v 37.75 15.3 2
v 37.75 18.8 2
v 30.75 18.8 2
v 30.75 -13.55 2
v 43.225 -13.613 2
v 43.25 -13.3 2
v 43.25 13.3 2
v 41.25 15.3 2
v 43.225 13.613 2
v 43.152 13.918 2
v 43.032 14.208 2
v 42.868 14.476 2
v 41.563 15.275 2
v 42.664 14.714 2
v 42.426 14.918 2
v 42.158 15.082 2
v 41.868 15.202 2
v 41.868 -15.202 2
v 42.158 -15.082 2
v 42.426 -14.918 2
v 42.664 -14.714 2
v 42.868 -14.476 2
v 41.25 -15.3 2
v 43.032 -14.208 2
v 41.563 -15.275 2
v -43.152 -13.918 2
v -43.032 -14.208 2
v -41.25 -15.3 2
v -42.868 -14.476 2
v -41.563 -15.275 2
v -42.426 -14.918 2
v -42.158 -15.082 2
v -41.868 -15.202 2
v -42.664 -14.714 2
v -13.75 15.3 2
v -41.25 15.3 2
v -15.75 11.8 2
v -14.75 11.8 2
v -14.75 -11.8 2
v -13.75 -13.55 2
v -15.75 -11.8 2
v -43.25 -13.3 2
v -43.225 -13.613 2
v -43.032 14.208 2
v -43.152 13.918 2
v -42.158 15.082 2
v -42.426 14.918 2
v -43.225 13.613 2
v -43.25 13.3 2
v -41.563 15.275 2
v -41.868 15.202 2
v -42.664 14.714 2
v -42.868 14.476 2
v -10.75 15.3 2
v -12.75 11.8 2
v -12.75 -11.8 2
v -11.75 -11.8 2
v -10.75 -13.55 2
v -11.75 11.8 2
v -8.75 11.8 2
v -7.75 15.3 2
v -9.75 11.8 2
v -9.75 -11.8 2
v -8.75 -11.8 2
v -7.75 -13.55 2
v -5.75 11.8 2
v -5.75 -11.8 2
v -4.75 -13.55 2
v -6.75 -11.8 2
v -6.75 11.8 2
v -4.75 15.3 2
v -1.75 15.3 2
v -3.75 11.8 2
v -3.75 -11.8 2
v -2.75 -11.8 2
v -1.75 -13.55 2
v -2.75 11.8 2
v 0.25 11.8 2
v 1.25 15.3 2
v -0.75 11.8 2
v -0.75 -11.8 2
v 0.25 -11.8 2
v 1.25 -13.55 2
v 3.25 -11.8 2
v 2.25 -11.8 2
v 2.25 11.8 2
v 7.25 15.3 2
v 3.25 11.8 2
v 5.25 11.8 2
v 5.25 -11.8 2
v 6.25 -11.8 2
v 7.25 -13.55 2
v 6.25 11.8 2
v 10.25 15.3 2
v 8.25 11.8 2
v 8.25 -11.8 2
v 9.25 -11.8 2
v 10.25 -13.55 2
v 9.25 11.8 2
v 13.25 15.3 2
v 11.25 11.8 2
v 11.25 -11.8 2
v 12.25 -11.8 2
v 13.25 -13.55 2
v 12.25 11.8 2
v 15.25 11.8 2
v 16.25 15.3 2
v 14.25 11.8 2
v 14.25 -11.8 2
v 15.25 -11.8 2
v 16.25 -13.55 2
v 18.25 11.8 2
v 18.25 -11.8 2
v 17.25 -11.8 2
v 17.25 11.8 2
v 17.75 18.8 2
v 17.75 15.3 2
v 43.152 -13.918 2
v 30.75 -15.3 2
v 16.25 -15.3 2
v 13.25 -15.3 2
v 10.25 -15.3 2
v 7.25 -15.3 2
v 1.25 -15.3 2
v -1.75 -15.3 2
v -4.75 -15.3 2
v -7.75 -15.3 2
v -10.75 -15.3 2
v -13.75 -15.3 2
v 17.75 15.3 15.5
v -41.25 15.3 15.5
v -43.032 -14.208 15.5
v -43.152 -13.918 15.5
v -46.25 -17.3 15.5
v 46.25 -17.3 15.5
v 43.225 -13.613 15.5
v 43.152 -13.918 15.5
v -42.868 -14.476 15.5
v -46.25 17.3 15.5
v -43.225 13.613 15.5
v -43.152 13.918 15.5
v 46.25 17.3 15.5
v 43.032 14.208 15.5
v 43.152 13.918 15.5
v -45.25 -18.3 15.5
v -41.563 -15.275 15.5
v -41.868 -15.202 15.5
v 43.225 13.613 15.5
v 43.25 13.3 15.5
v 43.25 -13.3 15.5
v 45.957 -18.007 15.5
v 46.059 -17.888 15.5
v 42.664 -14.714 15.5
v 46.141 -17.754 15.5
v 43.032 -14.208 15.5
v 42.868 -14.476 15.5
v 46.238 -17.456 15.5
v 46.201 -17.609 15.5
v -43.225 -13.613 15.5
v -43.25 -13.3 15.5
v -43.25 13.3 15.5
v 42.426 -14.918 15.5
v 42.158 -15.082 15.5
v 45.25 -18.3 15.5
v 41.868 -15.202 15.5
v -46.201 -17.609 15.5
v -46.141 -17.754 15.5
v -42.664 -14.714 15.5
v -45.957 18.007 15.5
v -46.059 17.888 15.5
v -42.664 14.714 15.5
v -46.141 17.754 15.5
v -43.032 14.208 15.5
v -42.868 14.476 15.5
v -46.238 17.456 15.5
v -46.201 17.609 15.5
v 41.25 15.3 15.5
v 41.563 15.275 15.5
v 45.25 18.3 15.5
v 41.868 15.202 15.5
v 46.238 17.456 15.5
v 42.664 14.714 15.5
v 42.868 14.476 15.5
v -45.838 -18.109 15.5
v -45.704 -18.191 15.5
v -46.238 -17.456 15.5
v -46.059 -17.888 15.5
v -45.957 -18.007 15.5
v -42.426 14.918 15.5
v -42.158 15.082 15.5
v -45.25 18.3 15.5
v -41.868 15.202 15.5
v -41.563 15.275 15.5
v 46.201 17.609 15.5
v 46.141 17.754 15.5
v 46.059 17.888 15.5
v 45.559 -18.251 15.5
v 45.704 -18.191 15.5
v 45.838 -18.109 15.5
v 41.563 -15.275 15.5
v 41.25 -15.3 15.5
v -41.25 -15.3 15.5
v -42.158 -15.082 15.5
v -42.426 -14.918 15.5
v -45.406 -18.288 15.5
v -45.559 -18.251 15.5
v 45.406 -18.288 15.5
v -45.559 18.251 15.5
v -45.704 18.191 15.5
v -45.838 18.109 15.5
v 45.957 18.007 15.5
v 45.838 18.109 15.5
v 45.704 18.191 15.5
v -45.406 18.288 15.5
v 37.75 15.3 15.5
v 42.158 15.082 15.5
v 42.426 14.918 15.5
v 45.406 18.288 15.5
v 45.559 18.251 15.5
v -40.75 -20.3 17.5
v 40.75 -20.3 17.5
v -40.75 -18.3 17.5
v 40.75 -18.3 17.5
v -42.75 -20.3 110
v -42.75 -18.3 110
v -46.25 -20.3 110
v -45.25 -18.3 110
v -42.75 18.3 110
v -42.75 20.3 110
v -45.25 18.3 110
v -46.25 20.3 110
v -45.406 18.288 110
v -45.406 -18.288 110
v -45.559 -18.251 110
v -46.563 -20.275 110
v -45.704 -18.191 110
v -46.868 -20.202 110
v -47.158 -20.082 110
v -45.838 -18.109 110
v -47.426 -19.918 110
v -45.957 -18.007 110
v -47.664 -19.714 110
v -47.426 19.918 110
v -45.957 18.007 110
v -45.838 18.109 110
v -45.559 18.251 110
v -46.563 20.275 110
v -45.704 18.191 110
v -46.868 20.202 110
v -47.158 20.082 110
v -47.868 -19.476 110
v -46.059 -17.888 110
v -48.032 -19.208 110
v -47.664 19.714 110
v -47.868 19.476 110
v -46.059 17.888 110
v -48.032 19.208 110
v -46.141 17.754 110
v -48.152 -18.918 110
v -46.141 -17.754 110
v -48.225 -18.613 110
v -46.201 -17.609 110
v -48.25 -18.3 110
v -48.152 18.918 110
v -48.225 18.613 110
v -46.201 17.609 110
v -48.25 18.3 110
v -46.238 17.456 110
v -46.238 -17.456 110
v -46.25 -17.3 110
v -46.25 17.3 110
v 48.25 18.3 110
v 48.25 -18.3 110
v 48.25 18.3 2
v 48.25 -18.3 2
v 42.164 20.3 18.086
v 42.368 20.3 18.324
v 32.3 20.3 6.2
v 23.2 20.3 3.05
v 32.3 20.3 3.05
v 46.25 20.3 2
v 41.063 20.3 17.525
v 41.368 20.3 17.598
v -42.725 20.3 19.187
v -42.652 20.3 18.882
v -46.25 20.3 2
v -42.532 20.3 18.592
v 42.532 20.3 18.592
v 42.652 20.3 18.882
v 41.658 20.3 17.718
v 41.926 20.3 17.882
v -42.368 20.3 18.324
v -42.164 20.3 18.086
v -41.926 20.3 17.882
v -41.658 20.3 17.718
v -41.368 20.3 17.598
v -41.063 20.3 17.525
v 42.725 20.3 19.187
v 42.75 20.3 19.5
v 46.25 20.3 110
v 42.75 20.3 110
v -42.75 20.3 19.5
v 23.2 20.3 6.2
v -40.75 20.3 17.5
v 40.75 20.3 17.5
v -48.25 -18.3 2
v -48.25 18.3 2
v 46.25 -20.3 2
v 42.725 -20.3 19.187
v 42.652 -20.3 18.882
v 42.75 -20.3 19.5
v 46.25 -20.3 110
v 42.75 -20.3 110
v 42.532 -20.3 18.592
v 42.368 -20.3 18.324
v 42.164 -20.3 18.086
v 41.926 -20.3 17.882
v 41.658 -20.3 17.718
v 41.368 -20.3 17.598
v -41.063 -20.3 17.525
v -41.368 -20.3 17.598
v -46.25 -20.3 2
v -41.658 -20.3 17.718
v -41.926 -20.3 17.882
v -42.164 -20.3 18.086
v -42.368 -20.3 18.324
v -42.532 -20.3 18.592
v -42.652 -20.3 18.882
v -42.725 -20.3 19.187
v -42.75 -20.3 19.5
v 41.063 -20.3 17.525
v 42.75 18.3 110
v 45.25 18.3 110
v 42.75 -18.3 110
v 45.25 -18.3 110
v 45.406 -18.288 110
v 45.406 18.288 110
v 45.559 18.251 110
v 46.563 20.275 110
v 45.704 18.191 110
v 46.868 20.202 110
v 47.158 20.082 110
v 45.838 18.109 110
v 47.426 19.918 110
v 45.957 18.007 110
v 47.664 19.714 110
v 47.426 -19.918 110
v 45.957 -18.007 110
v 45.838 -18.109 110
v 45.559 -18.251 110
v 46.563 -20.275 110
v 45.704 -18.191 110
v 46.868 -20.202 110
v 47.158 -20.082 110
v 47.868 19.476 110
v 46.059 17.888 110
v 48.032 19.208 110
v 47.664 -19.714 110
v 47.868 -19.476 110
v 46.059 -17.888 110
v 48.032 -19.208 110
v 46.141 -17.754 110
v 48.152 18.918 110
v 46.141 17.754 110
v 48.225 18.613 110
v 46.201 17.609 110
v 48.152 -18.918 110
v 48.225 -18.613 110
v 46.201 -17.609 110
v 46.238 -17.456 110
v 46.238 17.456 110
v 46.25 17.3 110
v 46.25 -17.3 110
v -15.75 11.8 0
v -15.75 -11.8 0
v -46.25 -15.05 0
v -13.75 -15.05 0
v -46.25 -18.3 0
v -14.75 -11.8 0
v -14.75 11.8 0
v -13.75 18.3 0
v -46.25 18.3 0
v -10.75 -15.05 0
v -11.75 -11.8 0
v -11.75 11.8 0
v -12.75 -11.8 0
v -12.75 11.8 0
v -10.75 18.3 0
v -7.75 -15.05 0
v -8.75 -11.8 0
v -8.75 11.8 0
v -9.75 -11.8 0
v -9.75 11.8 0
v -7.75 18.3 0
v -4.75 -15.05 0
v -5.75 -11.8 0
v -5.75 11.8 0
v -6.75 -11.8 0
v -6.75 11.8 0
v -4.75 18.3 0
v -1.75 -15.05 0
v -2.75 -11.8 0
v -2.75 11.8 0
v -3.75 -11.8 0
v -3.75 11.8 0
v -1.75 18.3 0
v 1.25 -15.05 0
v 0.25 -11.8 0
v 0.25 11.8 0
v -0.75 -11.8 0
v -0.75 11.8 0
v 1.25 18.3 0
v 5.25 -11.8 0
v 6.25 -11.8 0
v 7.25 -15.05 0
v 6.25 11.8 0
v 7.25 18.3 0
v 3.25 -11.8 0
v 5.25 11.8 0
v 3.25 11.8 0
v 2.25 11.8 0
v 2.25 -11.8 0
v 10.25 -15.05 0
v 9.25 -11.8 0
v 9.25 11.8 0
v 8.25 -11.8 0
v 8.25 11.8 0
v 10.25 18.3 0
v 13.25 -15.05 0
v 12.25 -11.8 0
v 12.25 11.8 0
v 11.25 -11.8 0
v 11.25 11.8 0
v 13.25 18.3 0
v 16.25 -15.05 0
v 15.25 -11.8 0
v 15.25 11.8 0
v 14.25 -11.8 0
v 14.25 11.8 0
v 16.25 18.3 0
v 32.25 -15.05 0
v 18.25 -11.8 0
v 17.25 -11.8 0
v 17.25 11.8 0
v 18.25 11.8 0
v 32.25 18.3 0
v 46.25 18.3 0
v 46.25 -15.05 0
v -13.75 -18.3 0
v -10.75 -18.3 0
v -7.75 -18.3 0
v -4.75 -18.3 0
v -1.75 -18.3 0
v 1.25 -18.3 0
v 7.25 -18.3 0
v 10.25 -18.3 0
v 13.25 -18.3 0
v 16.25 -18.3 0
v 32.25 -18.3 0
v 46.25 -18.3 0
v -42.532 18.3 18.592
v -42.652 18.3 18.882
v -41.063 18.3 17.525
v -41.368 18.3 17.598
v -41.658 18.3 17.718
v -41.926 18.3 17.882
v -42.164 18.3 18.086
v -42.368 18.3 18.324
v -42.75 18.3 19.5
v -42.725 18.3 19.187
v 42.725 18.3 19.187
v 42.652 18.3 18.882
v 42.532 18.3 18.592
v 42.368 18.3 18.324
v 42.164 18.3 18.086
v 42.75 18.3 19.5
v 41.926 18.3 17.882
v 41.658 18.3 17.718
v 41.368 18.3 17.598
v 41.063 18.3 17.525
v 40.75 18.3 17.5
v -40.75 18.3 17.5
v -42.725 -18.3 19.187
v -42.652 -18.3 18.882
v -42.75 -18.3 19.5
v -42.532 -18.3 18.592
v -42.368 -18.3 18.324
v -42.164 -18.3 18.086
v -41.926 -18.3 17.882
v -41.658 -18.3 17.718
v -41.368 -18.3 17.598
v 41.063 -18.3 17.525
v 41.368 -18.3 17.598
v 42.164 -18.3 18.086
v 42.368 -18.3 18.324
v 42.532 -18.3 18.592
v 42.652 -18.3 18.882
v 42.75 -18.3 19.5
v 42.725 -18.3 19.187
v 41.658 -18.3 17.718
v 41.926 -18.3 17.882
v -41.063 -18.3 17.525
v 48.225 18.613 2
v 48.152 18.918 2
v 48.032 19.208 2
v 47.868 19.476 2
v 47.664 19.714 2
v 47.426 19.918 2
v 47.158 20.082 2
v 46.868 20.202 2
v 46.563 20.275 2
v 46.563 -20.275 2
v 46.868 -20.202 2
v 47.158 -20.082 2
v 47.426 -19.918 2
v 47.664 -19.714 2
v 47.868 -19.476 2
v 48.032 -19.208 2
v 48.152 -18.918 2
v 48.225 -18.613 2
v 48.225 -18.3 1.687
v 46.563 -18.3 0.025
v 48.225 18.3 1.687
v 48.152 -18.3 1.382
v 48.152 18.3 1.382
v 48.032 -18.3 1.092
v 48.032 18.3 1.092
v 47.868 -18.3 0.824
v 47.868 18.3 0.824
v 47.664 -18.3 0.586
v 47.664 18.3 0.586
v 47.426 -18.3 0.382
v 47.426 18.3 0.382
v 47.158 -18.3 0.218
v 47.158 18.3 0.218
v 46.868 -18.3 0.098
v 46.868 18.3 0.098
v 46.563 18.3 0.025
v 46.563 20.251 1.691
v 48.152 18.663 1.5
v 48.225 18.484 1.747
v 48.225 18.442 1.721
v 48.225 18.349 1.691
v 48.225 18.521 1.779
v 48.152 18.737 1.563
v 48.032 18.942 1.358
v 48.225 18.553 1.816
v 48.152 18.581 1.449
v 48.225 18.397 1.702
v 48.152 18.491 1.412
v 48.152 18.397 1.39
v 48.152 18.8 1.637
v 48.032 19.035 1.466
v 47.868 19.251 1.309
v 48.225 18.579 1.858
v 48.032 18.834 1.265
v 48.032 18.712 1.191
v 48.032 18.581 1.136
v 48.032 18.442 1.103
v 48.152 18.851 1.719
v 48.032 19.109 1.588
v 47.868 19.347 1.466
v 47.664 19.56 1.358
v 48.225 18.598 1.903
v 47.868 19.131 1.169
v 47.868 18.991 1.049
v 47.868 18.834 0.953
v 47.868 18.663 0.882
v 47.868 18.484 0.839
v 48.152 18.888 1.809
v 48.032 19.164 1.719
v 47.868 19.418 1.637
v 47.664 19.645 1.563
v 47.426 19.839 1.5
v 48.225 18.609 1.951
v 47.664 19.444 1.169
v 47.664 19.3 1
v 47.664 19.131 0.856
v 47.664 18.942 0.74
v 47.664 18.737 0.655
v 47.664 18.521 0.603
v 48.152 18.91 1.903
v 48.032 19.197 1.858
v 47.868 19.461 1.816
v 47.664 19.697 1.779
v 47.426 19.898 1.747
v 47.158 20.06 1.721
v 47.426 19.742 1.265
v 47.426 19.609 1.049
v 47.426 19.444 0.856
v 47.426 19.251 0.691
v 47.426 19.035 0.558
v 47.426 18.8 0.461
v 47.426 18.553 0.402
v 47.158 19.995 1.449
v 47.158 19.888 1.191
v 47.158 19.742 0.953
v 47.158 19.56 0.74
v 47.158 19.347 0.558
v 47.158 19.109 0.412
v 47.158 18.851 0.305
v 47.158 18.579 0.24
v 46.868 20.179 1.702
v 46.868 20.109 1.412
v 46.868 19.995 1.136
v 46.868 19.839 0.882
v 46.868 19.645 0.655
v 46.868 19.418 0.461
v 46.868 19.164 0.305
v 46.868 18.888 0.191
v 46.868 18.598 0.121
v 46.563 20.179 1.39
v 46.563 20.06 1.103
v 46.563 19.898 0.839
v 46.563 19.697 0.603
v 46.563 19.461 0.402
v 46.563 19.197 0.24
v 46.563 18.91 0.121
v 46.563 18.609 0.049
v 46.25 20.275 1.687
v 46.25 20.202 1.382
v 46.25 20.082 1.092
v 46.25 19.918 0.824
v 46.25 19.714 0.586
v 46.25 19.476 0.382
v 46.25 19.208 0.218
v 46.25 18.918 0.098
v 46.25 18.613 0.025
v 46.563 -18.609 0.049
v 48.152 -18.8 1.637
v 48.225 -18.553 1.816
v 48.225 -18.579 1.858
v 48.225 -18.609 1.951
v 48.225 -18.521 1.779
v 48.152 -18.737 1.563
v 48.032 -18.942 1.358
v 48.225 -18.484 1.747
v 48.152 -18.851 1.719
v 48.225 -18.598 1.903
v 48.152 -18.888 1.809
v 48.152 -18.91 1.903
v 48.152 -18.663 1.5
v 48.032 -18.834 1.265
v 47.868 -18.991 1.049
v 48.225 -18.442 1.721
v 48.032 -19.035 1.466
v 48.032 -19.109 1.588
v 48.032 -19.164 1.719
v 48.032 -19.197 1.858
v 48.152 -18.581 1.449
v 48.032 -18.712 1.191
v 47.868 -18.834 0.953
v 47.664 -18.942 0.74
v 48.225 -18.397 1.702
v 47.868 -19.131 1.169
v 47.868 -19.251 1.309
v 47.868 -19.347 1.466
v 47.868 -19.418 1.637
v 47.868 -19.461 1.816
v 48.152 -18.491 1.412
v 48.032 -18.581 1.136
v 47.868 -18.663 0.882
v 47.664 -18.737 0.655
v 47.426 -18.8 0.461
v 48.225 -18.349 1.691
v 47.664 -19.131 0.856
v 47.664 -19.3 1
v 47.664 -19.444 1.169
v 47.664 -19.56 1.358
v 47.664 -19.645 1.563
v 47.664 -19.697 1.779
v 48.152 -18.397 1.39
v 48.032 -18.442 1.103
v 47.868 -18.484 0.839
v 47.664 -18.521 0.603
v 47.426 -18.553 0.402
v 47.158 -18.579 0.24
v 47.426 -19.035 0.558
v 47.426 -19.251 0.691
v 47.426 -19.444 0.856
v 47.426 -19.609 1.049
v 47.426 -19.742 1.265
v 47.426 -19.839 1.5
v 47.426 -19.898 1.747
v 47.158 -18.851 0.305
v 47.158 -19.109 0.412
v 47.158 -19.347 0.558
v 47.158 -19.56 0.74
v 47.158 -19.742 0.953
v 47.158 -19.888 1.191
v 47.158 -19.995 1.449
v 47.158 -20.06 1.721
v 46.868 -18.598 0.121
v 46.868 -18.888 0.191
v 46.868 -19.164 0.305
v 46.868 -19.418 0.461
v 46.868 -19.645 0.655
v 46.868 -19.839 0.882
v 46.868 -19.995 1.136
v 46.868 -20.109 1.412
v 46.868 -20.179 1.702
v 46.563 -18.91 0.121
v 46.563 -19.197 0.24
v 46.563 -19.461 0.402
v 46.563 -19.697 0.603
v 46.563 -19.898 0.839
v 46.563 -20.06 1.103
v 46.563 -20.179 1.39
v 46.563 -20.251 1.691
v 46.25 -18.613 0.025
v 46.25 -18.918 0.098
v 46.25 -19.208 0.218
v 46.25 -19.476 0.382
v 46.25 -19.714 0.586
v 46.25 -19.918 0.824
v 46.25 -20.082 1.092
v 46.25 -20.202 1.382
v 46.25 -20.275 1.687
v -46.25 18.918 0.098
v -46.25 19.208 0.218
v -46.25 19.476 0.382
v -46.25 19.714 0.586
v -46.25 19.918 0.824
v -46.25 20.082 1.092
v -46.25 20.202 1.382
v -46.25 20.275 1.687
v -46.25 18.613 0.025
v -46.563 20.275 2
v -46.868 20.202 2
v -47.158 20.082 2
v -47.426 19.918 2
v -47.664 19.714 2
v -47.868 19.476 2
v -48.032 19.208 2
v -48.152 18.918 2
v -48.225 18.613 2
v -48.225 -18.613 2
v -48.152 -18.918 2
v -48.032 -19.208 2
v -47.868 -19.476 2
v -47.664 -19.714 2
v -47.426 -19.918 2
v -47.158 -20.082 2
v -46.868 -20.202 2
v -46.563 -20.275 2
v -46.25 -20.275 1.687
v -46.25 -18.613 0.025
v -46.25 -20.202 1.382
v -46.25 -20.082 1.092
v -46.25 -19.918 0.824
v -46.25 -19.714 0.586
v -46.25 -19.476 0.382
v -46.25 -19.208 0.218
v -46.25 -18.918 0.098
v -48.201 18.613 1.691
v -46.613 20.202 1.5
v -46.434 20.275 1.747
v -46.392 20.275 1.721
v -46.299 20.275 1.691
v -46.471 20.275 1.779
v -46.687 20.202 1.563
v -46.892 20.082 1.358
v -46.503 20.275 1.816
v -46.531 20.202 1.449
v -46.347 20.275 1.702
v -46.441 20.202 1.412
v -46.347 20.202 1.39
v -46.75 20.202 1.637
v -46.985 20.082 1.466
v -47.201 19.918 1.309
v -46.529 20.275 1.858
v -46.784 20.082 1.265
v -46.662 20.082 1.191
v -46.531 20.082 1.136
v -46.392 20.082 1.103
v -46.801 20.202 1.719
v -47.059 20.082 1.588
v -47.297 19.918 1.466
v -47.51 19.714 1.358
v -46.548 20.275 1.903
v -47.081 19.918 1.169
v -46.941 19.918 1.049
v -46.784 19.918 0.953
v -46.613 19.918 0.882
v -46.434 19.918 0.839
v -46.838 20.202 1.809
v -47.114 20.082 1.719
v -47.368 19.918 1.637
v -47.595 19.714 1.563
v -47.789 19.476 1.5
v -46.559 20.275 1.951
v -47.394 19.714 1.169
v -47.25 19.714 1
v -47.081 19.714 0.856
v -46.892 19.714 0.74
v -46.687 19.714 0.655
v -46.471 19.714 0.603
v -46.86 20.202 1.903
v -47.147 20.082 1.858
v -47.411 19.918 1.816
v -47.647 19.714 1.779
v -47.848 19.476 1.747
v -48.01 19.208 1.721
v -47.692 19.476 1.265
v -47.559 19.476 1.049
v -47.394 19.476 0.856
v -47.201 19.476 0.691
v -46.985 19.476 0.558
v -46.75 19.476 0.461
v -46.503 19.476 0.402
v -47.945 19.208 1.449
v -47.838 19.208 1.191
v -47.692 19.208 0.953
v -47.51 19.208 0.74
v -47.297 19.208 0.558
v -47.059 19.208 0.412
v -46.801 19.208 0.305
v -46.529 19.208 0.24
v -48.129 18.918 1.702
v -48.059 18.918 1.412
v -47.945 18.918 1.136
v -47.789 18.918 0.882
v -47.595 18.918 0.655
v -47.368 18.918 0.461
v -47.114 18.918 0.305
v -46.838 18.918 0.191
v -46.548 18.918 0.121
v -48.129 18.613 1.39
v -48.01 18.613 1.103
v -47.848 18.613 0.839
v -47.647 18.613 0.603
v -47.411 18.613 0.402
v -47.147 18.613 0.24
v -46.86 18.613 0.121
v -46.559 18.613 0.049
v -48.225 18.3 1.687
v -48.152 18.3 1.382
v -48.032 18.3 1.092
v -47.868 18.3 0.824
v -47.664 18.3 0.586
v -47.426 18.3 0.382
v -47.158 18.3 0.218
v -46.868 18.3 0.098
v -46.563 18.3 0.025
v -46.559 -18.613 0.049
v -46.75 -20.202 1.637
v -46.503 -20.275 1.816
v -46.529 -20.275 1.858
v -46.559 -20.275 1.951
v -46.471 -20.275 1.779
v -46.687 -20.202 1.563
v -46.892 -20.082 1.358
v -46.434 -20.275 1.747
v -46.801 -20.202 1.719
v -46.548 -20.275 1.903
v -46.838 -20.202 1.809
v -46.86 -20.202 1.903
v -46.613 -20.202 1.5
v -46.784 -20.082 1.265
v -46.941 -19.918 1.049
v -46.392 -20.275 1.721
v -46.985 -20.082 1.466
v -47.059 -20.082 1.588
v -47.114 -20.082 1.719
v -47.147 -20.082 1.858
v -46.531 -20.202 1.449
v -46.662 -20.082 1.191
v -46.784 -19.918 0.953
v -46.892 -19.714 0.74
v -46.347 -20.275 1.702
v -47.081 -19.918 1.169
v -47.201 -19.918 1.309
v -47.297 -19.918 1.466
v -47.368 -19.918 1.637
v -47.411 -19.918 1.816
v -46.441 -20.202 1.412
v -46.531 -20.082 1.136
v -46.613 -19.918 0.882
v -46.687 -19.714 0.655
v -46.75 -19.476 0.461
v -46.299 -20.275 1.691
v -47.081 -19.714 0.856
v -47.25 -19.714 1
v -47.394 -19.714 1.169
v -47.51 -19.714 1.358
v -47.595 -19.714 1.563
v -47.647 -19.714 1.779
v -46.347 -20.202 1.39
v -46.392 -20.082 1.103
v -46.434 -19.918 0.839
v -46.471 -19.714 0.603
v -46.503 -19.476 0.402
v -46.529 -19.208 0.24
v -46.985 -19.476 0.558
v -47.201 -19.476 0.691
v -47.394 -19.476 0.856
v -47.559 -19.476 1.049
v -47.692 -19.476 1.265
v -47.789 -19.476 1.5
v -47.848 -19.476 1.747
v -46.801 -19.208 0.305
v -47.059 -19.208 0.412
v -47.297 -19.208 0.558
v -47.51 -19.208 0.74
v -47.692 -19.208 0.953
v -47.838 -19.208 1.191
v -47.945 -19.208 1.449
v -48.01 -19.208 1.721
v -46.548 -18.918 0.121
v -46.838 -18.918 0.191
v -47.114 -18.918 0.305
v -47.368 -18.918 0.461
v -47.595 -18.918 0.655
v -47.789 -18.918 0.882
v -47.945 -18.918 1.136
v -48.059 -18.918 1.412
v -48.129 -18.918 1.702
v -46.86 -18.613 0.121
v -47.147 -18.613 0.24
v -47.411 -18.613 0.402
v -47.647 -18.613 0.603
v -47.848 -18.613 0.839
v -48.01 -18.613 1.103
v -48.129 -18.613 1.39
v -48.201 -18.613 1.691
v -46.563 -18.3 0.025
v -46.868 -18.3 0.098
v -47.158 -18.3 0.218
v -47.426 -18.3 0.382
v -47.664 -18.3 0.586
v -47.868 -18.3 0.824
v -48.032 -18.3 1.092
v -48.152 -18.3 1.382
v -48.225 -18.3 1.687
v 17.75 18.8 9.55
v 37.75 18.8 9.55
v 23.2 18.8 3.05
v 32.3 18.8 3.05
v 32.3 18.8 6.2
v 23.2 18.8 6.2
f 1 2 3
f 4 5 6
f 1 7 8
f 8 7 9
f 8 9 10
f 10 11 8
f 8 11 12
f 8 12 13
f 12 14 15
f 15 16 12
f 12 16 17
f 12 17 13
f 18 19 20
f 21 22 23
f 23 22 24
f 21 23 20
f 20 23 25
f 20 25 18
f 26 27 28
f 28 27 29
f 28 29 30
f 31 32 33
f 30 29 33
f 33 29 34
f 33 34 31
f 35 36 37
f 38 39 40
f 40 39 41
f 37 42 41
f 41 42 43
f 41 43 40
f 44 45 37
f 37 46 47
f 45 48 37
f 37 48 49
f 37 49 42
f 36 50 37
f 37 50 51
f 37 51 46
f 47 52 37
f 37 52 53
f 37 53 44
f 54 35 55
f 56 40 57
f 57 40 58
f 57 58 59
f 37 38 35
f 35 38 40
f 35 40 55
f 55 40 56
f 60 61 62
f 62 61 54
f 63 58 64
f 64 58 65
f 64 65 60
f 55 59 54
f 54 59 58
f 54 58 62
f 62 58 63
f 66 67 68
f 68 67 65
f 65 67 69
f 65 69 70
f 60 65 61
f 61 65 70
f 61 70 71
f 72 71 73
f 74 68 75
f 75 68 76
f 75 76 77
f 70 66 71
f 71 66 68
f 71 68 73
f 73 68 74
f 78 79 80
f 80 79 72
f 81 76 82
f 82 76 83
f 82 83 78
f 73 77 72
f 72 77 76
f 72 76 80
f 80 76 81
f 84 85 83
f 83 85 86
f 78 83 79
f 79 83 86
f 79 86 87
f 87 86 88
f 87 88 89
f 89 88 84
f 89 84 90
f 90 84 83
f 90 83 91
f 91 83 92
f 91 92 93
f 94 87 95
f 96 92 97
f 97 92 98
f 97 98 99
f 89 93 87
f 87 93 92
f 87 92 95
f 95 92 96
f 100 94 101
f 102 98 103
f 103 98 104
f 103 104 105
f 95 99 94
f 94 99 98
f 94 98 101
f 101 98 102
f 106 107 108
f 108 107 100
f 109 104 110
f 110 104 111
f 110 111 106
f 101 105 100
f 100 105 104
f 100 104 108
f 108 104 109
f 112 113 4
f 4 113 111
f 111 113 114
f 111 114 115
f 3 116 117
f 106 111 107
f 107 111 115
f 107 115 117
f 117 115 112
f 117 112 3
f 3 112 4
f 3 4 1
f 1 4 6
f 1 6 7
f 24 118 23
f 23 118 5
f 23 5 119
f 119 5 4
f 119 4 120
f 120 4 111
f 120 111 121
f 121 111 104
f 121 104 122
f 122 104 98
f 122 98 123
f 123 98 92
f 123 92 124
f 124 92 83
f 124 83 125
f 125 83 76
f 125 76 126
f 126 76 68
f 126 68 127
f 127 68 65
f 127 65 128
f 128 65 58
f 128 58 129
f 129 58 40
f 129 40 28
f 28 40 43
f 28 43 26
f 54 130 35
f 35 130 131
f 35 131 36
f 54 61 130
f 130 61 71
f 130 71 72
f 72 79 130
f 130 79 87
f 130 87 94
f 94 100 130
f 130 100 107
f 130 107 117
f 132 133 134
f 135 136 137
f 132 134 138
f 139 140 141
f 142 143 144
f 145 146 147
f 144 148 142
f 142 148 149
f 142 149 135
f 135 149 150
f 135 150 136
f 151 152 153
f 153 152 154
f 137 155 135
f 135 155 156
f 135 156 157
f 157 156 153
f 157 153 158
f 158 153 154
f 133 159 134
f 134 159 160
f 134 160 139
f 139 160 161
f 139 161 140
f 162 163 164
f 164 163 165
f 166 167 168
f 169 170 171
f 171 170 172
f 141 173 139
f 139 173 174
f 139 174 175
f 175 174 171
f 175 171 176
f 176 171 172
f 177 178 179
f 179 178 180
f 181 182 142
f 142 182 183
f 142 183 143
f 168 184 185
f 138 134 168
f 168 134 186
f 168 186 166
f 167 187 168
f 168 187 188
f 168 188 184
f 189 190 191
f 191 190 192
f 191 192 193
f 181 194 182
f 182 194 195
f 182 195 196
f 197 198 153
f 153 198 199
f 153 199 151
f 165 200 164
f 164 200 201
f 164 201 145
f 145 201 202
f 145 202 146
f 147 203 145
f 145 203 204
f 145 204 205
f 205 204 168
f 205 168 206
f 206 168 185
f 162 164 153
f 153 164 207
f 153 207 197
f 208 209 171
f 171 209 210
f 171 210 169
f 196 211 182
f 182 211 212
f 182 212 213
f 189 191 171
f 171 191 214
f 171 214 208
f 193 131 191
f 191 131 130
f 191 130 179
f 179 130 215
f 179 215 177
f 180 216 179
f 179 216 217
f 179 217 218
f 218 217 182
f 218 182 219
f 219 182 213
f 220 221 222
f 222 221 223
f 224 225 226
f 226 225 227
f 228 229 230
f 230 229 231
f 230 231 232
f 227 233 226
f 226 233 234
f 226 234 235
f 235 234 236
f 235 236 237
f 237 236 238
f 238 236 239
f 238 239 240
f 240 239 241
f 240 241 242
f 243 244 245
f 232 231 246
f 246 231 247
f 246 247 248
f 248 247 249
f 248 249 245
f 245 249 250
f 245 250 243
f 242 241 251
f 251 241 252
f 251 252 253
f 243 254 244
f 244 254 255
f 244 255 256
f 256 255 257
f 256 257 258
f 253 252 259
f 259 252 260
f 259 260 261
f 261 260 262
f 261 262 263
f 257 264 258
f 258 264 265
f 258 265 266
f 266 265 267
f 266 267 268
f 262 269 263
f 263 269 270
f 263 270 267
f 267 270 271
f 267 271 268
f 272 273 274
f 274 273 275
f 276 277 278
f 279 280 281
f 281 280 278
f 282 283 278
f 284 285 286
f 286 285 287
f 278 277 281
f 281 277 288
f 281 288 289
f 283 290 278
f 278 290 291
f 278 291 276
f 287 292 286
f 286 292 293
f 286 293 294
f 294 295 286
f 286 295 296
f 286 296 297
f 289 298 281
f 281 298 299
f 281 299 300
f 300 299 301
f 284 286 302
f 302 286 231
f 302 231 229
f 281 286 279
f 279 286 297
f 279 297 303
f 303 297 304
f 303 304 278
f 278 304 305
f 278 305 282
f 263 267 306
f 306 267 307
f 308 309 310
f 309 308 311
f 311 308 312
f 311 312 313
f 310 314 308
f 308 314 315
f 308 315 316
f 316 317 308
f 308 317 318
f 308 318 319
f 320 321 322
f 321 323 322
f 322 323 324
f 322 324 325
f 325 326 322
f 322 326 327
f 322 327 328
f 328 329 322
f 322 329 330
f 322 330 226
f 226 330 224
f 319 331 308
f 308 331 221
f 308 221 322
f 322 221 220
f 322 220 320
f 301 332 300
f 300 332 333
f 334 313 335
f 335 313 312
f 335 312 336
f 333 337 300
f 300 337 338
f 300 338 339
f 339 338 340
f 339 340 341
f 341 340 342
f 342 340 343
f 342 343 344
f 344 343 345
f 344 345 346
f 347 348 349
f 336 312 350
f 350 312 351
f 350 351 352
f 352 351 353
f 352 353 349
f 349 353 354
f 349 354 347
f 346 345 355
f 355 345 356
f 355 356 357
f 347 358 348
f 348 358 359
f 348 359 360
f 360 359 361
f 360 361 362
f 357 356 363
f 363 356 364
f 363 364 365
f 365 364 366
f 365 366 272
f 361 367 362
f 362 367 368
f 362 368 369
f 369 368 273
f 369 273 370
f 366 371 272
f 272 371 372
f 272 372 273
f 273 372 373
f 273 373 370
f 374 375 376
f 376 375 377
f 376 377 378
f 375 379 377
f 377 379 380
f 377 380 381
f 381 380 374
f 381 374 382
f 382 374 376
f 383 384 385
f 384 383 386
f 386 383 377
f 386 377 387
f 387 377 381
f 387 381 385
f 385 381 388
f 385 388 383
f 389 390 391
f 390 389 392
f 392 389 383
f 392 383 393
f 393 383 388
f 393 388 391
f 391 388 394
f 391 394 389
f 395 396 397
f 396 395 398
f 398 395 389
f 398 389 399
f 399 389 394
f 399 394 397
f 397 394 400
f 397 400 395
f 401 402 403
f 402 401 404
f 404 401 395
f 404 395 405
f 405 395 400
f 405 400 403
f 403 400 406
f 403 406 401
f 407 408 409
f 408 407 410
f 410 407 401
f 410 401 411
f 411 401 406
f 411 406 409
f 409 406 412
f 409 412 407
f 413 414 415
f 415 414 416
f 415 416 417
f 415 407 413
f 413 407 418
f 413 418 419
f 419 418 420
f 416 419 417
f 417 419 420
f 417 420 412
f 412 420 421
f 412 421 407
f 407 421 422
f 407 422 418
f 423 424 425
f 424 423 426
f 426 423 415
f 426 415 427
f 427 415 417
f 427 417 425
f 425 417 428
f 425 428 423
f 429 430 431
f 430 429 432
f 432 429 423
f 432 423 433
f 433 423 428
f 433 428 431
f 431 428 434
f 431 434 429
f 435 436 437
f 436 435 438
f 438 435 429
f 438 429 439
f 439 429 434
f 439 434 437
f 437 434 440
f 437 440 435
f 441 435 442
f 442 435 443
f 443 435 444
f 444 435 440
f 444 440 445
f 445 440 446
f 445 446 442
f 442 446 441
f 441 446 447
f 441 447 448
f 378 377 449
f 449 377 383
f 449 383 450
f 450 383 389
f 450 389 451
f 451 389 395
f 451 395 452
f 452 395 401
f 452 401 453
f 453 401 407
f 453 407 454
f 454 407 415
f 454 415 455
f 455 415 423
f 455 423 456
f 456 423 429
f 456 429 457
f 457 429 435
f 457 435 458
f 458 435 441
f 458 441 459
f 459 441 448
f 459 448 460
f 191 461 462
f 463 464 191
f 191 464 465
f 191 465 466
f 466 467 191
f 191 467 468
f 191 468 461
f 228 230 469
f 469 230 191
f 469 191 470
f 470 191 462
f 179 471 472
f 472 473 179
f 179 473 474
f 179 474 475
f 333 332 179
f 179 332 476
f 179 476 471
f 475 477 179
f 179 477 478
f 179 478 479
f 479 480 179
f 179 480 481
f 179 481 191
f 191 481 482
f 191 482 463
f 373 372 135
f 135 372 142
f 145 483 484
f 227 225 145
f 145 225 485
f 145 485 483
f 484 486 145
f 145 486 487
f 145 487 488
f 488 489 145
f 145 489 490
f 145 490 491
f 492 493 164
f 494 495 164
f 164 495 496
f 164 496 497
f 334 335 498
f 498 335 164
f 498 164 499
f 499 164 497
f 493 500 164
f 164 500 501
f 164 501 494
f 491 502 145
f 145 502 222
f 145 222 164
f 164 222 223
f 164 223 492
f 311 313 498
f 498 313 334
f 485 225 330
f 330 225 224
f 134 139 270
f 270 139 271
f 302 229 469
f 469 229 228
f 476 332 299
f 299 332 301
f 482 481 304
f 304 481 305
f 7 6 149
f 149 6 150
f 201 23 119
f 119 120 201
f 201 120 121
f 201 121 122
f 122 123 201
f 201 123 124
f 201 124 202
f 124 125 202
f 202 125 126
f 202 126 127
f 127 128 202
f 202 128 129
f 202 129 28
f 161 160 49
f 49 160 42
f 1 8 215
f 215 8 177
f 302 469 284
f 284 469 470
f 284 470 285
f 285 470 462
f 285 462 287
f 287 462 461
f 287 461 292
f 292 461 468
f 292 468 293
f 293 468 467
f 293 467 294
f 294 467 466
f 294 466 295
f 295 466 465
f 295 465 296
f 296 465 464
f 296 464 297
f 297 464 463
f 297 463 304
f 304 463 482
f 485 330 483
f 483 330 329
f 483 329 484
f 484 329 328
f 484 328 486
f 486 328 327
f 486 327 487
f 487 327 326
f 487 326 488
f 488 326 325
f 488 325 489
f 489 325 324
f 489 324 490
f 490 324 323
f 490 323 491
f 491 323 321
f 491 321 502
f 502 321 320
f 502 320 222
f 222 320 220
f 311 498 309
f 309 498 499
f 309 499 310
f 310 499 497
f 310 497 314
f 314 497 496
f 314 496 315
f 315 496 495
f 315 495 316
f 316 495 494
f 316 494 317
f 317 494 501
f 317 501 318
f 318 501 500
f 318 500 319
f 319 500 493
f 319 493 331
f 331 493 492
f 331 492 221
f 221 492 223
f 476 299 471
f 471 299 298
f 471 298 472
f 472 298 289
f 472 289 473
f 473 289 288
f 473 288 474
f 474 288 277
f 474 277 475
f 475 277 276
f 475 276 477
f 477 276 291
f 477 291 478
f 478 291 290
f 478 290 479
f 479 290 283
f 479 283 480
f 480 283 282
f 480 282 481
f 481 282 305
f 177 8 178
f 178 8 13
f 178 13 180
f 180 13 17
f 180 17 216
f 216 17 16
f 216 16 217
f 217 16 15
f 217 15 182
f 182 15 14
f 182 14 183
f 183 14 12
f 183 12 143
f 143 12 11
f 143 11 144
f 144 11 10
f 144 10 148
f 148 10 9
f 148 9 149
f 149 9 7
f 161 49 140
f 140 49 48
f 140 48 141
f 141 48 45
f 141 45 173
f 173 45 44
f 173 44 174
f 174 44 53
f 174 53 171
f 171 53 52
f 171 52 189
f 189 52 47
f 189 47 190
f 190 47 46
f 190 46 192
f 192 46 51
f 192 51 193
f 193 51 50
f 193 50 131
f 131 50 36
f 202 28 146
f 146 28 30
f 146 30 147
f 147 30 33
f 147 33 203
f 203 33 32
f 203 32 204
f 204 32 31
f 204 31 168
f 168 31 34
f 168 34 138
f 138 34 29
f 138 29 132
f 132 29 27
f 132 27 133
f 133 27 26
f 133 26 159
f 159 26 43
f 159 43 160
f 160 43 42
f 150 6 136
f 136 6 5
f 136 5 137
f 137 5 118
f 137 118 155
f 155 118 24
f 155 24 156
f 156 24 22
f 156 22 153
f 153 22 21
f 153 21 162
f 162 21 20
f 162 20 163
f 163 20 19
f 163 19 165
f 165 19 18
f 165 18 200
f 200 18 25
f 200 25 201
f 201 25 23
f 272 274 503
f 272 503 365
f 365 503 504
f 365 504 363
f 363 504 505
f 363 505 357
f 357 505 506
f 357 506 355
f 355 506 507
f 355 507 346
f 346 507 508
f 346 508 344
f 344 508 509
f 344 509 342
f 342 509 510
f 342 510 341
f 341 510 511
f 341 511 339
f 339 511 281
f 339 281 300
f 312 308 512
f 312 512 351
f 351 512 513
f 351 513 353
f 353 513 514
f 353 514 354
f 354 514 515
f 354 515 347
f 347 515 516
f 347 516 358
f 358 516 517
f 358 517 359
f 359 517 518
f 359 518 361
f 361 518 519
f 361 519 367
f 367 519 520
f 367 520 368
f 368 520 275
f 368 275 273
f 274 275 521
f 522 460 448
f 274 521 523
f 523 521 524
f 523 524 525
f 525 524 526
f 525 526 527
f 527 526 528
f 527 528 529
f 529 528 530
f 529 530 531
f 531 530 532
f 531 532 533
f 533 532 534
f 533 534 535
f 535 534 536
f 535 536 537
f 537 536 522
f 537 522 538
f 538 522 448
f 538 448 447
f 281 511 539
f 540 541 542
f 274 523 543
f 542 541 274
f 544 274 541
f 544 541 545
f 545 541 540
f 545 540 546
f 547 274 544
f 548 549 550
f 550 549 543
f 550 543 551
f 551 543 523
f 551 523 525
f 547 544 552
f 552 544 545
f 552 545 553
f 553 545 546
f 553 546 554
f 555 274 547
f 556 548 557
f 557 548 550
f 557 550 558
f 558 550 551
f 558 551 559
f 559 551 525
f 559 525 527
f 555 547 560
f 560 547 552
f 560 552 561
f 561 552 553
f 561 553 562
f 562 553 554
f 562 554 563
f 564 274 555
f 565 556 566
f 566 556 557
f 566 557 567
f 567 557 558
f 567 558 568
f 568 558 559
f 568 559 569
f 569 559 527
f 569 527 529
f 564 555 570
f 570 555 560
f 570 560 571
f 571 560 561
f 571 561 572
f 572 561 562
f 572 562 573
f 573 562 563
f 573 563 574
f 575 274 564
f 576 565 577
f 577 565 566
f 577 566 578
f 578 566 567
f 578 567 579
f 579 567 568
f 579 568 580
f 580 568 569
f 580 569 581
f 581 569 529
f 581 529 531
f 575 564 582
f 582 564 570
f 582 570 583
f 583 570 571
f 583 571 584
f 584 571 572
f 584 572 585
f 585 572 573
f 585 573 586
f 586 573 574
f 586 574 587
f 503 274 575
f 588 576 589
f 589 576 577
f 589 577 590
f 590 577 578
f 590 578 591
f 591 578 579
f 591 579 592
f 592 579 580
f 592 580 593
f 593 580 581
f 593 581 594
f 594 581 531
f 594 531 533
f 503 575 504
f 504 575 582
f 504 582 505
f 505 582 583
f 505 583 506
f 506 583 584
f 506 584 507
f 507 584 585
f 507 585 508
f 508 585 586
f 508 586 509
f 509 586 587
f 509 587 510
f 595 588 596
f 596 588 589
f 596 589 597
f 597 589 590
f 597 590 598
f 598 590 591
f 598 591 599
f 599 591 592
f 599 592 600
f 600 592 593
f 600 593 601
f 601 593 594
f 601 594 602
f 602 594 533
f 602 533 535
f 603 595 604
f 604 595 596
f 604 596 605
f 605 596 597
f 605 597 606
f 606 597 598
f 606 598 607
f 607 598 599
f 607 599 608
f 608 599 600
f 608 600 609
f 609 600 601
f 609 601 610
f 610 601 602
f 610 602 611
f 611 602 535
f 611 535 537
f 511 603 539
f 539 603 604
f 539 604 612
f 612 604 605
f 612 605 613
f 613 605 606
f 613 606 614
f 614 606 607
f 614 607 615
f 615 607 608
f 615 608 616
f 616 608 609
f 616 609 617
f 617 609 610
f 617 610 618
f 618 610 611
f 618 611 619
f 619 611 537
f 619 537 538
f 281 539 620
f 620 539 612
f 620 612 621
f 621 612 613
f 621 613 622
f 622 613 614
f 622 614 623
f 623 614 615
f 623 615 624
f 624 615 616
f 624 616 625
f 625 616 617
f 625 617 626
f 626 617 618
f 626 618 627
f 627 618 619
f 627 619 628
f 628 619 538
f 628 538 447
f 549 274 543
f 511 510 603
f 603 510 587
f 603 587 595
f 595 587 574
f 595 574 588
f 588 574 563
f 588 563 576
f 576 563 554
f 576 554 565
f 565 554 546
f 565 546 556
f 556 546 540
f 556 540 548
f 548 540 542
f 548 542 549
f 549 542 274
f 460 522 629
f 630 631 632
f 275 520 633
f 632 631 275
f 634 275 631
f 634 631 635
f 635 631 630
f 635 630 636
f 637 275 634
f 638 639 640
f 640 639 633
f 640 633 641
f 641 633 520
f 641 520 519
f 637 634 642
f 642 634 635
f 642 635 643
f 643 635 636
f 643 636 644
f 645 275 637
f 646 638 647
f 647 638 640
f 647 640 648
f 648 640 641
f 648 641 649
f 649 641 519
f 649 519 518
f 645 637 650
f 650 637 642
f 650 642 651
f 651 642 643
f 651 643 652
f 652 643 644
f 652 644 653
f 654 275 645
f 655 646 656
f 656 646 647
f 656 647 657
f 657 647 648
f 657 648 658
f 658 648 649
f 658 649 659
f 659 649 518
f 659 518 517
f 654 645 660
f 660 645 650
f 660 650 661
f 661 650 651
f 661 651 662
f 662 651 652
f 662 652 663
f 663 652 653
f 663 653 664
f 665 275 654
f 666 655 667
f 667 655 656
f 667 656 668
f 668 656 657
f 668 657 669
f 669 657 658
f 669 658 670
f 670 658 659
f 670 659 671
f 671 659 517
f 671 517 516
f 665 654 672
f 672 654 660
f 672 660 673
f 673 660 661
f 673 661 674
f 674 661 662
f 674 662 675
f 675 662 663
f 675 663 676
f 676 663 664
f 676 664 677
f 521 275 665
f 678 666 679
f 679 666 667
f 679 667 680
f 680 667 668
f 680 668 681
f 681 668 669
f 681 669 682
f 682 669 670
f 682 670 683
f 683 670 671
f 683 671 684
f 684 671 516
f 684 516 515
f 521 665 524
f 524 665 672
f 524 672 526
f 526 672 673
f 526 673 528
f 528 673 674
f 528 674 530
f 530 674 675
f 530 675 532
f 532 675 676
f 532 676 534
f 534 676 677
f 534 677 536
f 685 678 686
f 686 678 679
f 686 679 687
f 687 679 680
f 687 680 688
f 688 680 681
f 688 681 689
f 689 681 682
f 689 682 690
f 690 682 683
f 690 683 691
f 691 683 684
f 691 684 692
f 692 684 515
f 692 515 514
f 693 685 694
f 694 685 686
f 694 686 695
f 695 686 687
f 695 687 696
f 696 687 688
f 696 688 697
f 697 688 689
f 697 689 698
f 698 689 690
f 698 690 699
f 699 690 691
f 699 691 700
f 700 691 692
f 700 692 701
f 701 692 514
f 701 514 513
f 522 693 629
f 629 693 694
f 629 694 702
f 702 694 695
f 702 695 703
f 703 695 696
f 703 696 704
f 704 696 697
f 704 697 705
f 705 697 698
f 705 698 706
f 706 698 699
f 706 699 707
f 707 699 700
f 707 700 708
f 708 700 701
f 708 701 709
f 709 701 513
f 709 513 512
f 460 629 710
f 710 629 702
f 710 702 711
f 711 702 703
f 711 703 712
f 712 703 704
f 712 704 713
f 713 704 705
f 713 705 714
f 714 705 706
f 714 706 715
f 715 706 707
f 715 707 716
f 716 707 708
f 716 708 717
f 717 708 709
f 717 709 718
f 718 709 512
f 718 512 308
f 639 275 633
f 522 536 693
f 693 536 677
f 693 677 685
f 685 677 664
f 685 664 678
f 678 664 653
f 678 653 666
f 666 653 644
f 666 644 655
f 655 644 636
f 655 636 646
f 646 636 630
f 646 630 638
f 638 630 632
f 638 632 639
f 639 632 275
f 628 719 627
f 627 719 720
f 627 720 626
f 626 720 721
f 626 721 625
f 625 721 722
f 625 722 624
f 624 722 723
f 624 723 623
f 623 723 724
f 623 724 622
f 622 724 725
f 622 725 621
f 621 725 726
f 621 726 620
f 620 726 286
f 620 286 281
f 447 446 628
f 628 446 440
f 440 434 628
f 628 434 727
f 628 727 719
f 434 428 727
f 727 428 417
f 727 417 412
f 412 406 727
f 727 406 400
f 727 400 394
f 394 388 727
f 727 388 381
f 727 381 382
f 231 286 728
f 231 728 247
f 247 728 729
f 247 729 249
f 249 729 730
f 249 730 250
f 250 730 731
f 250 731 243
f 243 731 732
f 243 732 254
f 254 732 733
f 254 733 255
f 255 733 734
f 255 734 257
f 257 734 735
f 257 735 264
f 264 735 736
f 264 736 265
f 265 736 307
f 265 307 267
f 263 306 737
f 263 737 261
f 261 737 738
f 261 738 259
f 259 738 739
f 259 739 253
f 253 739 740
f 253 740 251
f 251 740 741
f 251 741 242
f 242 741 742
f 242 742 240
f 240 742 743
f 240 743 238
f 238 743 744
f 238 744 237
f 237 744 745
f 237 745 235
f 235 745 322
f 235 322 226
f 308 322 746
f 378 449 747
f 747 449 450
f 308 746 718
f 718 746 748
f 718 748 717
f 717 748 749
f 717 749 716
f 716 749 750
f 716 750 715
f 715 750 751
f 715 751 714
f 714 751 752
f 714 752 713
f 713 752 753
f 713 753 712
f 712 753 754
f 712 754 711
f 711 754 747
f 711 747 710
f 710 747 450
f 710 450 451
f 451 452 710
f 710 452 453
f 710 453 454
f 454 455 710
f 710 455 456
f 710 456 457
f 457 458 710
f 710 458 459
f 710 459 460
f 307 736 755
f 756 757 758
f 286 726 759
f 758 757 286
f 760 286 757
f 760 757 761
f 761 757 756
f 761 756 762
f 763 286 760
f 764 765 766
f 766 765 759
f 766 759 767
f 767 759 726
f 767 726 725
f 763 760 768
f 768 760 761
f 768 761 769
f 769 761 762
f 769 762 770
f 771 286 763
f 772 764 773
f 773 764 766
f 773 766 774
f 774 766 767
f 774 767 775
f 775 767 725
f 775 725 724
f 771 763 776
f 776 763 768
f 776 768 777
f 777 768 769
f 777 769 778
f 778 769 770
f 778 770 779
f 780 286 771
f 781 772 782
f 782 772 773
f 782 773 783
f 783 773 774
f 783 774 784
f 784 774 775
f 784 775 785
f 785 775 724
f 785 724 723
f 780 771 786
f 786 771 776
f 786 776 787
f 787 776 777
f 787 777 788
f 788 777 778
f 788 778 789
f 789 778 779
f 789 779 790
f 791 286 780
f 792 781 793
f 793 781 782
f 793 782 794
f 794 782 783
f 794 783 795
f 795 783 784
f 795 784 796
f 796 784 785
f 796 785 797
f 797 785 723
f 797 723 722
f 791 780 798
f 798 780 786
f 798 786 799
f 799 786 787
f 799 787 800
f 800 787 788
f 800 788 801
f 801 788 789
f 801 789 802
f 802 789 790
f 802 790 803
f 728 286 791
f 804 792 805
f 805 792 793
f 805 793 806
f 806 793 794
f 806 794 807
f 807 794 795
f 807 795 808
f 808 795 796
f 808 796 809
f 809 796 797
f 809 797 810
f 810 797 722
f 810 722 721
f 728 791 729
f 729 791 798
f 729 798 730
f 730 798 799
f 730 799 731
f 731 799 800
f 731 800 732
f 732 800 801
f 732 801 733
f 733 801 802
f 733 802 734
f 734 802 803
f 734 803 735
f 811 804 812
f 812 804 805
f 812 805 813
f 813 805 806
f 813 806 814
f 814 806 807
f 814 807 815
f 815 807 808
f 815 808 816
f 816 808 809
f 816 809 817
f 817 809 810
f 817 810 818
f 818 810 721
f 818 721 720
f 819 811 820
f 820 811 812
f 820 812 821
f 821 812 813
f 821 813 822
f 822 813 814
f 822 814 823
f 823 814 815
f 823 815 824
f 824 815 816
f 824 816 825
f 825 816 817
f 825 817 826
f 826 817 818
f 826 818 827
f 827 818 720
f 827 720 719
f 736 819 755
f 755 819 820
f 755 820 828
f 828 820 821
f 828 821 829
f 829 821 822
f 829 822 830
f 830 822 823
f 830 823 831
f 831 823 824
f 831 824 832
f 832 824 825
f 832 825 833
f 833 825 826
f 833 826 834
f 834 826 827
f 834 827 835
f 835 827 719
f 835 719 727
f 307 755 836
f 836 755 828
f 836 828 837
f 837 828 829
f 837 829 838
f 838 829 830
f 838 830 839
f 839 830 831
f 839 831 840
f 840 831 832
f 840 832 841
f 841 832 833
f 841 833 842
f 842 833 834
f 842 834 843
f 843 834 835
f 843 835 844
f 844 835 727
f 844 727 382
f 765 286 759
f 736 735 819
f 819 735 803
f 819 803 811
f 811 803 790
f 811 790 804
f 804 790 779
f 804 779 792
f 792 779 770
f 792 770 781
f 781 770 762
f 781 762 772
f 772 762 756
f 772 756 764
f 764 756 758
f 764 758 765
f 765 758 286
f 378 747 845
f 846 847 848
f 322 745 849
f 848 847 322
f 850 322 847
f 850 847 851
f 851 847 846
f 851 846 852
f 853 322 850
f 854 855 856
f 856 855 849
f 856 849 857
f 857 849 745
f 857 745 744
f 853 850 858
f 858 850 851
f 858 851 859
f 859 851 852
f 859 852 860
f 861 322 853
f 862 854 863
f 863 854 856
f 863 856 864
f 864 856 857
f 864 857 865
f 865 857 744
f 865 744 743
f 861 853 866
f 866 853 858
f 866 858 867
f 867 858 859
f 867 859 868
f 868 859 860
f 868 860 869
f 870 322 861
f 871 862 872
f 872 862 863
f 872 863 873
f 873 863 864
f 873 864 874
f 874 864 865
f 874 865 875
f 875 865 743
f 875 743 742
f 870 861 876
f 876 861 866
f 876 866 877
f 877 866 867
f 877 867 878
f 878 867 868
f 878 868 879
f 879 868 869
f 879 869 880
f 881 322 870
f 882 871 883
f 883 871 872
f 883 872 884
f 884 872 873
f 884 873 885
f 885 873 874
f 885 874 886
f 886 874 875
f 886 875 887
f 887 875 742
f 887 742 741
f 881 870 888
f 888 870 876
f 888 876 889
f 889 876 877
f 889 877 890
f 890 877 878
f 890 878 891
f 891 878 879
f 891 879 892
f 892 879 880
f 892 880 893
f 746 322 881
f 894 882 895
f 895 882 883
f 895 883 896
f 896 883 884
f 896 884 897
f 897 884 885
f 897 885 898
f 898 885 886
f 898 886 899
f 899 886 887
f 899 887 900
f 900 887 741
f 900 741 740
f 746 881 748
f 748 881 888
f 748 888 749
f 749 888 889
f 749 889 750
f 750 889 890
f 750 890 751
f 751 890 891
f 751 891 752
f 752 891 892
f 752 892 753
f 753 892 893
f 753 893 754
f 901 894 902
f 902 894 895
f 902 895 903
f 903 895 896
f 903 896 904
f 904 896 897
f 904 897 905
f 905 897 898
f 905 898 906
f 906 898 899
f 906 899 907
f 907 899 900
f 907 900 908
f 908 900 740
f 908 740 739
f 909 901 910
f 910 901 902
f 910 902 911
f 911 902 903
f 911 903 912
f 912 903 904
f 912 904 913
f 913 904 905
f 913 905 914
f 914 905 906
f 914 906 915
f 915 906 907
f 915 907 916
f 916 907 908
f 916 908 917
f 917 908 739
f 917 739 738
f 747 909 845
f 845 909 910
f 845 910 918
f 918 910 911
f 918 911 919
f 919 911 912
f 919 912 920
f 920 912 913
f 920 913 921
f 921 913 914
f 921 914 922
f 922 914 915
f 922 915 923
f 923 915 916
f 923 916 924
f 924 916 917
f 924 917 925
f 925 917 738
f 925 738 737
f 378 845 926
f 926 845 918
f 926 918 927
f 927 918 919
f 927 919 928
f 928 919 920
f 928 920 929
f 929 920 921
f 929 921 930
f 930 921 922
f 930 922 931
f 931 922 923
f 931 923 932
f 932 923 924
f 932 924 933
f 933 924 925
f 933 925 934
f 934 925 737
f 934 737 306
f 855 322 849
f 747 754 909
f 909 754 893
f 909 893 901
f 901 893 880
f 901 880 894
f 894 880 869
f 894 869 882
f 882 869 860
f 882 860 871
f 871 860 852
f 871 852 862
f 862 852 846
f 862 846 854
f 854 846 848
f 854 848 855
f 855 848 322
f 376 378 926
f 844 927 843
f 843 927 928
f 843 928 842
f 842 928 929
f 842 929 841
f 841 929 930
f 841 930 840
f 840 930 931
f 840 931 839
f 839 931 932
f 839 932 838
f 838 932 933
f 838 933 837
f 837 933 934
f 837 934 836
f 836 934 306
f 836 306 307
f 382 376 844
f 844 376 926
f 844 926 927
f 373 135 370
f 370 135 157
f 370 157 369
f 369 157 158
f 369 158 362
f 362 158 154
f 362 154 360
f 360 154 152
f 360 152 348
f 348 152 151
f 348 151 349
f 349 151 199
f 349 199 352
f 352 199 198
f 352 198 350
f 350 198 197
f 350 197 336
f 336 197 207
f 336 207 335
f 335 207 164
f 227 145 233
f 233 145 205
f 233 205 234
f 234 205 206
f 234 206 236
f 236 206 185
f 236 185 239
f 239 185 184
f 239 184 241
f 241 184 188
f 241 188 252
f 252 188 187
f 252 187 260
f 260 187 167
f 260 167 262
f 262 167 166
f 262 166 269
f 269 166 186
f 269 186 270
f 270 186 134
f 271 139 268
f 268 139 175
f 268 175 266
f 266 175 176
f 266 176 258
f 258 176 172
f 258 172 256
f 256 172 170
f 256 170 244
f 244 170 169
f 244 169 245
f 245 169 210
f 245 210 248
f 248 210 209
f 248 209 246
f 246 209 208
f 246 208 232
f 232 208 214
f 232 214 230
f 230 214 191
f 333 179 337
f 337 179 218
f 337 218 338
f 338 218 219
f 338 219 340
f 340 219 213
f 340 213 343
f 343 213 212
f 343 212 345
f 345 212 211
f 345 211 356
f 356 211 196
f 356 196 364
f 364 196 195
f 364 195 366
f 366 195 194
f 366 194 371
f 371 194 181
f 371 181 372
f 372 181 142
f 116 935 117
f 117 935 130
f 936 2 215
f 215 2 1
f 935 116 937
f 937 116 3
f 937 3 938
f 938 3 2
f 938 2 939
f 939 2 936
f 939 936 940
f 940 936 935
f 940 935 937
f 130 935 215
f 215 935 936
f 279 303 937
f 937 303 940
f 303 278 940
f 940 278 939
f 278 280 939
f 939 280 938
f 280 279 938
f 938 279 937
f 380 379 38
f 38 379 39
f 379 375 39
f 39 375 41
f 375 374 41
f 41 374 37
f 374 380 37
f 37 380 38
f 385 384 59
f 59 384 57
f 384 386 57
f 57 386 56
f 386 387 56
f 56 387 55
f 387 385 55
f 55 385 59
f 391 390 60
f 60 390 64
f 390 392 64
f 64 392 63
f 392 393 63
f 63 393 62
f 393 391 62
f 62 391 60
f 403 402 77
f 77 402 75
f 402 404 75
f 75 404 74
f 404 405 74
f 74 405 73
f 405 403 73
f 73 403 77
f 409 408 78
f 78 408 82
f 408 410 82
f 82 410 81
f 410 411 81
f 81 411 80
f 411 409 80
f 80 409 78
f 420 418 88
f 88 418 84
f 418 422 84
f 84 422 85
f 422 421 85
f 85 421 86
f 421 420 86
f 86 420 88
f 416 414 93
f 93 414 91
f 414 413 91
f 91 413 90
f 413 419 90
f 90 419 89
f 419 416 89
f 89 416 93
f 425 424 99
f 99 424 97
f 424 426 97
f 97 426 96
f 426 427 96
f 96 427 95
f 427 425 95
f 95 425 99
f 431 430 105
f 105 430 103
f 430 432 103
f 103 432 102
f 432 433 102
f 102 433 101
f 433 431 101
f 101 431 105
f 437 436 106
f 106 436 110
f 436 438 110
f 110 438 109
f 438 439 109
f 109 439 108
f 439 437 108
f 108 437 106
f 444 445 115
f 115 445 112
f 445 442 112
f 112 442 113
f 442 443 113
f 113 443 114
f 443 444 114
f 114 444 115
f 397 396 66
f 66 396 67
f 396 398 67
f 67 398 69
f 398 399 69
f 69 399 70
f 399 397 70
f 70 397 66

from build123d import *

# Parameters (mm, degrees)
IZIM1_W                     = 96.5
IZIM1_H                     = 40.6
Y_KSEKLIK_EKSTR_ZYON1_DEPTH = 110
KES_EKSTR_ZYON1_DEPTH       = 92.5
IZIM3_W                     = 92.5
IZIM3_H                     = 36.6
KES_EKSTR_ZYON2_DEPTH       = 2
IZIM4_W                     = 86.5
IZIM4_H                     = 30.6
KES_EKSTR_ZYON3_DEPTH       = 13.5
RADYUS1_R                   = 2
RADYUS2_R                   = 1
IZIM5_W                     = 20
IZIM5_H                     = 5
KES_EKSTR_ZYON4_DEPTH       = 3.5
IZIM6_W                     = 9.1
IZIM6_H                     = 3.15
KES_EKSTR_ZYON5_DEPTH       = 1.5
IZIM7_W                     = 1
IZIM7_H                     = 23.6
KES_EKSTR_ZYON6_DEPTH       = 2


with BuildPart() as part:
    # Çizim1 → Yükseklik-Ekstrüzyon1 (new body)
    with BuildSketch(Plane.XY):
        Rectangle(IZIM1_W, IZIM1_H)
    extrude(amount=Y_KSEKLIK_EKSTR_ZYON1_DEPTH)

    # Çizim2 → Kes-Ekstrüzyon1 (cut)
    with BuildSketch(Plane.XY.offset(110)):
        Polygon((-46.25, -18.3), (-42.75, -18.3), (-42.75, -20.3), (42.75, -20.3), (42.75, -18.3), (46.25, -18.3), (46.25, 18.3), (42.75, 18.3), (42.75, 20.3), (-42.75, 20.3), (-42.75, 18.3), (-46.25, 18.3), align=None)
    extrude(amount=-KES_EKSTR_ZYON1_DEPTH, mode=Mode.SUBTRACT)

    # Çizim3 → Kes-Ekstrüzyon2 (cut)
    with BuildSketch(Plane.XY.offset(17.5)):
        Rectangle(IZIM3_W, IZIM3_H)
    extrude(amount=-KES_EKSTR_ZYON2_DEPTH, mode=Mode.SUBTRACT)

    # Çizim4 → Kes-Ekstrüzyon3 (cut)
    with BuildSketch(Plane.XY.offset(15.5)):
        Rectangle(IZIM4_W, IZIM4_H)
    extrude(amount=-KES_EKSTR_ZYON3_DEPTH, mode=Mode.SUBTRACT)

    # Radyus1
    radyus1_edges = [part.edges().sort_by_distance(p)[0] for p in [
        (42.75, -19.3, 17.5),
        (-42.75, -19.3, 17.5),
        (-42.75, 19.3, 17.5),
        (42.75, 19.3, 17.5),
        (0, -20.3, 0),
        (-48.25, 0, 0),
        (0, 20.3, 0),
        (48.25, 0, 0),
        (43.25, 15.3, 8.75),
        (43.25, -15.3, 8.75),
        (-43.25, -15.3, 8.75),
        (-43.25, 15.3, 8.75),
        (48.25, -20.3, 55),
        (-48.25, -20.3, 55),
        (-48.25, 20.3, 55),
        (48.25, 20.3, 55),
    ]]
    fillet(radyus1_edges, radius=RADYUS1_R)

    # Radyus2
    radyus2_edges = [part.edges().sort_by_distance(p)[0] for p in [
        (46.25, 18.3, 62.75),
        (46.25, -18.3, 62.75),
        (-46.25, -18.3, 62.75),
        (-46.25, 18.3, 62.75),
    ]]
    fillet(radyus2_edges, radius=RADYUS2_R)

    # Çizim5 → Kes-Ekstrüzyon4 (cut)
    with BuildSketch(Plane.XZ.offset(-15.3)):
        with Locations((27.75, 4.5)):
            Rectangle(IZIM5_W, IZIM5_H)
    extrude(amount=-KES_EKSTR_ZYON4_DEPTH, mode=Mode.SUBTRACT)

    # Pah3
    # the kernel refuses this chamfer: 8.5, 5 mm, written as the material it takes off along each edge
    with BuildSketch(Plane(origin=(37.75, 15.3, 7), x_dir=(0, -0.01960111388009259, 0.9998078797122274), z_dir=(-1, 0, 0))) as pah3_piece_1_section:
        with BuildLine():
            Line((8.794747283, 0), (-0.394385874, 5.165648867))
            Line((-0.394385874, 5.165648867), (-0.564353214, 5.162316677))
            ThreePointArc((-0.564353214, 5.162316677), (-0.220659611, 2.582364372), (-0.16996734, -0.003332189))
            Line((-0.16996734, -0.003332189), (0.003332189, -0.16996734))
            ThreePointArc((0.003332189, -0.16996734), (4.399016344, -0.083790478), (8.798079472, -0.16996734))
            Line((8.798079472, -0.16996734), (8.794747283, 0))
        make_face()
    pah3_piece_1 = extrude(amount=20, mode=Mode.PRIVATE)
    pah3_piece_1 = split(pah3_piece_1, bisect_by=Plane(origin=(27.75, 18.8, 10.101795291), z_dir=(0, -1, 0)), keep=Keep.TOP, mode=Mode.PRIVATE)
    add(pah3_piece_1, mode=Mode.SUBTRACT)

    # Çizim6 → Kes-Ekstrüzyon5 (cut)
    with BuildSketch(Plane.XZ.offset(-18.8)):
        with Locations((27.75, 4.625)):
            Rectangle(IZIM6_W, IZIM6_H)
    extrude(amount=-KES_EKSTR_ZYON5_DEPTH, mode=Mode.SUBTRACT)

    # Çizim7 → Kes-Ekstrüzyon6 (cut)
    with BuildSketch(Plane.XY.offset(2)):
        with Locations((17.75, 0)):
            Rectangle(IZIM7_W, IZIM7_H)
        with Locations((14.75, 0)):
            Rectangle(IZIM7_W, IZIM7_H)
        with Locations((11.75, 0)):
            Rectangle(IZIM7_W, IZIM7_H)
        with Locations((8.75, 0)):
            Rectangle(IZIM7_W, IZIM7_H)
        with Locations((5.75, 0)):
            Rectangle(IZIM7_W, IZIM7_H)
        with Locations((2.75, 0)):
            Rectangle(IZIM7_W, IZIM7_H)
        with Locations((-0.25, 0)):
            Rectangle(IZIM7_W, IZIM7_H)
        with Locations((-3.25, 0)):
            Rectangle(IZIM7_W, IZIM7_H)
        with Locations((-6.25, 0)):
            Rectangle(IZIM7_W, IZIM7_H)
        with Locations((-9.25, 0)):
            Rectangle(IZIM7_W, IZIM7_H)
        with Locations((-12.25, 0)):
            Rectangle(IZIM7_W, IZIM7_H)
        with Locations((-15.25, 0)):
            Rectangle(IZIM7_W, IZIM7_H)
    extrude(amount=-KES_EKSTR_ZYON6_DEPTH, mode=Mode.SUBTRACT)


solid = part.part
